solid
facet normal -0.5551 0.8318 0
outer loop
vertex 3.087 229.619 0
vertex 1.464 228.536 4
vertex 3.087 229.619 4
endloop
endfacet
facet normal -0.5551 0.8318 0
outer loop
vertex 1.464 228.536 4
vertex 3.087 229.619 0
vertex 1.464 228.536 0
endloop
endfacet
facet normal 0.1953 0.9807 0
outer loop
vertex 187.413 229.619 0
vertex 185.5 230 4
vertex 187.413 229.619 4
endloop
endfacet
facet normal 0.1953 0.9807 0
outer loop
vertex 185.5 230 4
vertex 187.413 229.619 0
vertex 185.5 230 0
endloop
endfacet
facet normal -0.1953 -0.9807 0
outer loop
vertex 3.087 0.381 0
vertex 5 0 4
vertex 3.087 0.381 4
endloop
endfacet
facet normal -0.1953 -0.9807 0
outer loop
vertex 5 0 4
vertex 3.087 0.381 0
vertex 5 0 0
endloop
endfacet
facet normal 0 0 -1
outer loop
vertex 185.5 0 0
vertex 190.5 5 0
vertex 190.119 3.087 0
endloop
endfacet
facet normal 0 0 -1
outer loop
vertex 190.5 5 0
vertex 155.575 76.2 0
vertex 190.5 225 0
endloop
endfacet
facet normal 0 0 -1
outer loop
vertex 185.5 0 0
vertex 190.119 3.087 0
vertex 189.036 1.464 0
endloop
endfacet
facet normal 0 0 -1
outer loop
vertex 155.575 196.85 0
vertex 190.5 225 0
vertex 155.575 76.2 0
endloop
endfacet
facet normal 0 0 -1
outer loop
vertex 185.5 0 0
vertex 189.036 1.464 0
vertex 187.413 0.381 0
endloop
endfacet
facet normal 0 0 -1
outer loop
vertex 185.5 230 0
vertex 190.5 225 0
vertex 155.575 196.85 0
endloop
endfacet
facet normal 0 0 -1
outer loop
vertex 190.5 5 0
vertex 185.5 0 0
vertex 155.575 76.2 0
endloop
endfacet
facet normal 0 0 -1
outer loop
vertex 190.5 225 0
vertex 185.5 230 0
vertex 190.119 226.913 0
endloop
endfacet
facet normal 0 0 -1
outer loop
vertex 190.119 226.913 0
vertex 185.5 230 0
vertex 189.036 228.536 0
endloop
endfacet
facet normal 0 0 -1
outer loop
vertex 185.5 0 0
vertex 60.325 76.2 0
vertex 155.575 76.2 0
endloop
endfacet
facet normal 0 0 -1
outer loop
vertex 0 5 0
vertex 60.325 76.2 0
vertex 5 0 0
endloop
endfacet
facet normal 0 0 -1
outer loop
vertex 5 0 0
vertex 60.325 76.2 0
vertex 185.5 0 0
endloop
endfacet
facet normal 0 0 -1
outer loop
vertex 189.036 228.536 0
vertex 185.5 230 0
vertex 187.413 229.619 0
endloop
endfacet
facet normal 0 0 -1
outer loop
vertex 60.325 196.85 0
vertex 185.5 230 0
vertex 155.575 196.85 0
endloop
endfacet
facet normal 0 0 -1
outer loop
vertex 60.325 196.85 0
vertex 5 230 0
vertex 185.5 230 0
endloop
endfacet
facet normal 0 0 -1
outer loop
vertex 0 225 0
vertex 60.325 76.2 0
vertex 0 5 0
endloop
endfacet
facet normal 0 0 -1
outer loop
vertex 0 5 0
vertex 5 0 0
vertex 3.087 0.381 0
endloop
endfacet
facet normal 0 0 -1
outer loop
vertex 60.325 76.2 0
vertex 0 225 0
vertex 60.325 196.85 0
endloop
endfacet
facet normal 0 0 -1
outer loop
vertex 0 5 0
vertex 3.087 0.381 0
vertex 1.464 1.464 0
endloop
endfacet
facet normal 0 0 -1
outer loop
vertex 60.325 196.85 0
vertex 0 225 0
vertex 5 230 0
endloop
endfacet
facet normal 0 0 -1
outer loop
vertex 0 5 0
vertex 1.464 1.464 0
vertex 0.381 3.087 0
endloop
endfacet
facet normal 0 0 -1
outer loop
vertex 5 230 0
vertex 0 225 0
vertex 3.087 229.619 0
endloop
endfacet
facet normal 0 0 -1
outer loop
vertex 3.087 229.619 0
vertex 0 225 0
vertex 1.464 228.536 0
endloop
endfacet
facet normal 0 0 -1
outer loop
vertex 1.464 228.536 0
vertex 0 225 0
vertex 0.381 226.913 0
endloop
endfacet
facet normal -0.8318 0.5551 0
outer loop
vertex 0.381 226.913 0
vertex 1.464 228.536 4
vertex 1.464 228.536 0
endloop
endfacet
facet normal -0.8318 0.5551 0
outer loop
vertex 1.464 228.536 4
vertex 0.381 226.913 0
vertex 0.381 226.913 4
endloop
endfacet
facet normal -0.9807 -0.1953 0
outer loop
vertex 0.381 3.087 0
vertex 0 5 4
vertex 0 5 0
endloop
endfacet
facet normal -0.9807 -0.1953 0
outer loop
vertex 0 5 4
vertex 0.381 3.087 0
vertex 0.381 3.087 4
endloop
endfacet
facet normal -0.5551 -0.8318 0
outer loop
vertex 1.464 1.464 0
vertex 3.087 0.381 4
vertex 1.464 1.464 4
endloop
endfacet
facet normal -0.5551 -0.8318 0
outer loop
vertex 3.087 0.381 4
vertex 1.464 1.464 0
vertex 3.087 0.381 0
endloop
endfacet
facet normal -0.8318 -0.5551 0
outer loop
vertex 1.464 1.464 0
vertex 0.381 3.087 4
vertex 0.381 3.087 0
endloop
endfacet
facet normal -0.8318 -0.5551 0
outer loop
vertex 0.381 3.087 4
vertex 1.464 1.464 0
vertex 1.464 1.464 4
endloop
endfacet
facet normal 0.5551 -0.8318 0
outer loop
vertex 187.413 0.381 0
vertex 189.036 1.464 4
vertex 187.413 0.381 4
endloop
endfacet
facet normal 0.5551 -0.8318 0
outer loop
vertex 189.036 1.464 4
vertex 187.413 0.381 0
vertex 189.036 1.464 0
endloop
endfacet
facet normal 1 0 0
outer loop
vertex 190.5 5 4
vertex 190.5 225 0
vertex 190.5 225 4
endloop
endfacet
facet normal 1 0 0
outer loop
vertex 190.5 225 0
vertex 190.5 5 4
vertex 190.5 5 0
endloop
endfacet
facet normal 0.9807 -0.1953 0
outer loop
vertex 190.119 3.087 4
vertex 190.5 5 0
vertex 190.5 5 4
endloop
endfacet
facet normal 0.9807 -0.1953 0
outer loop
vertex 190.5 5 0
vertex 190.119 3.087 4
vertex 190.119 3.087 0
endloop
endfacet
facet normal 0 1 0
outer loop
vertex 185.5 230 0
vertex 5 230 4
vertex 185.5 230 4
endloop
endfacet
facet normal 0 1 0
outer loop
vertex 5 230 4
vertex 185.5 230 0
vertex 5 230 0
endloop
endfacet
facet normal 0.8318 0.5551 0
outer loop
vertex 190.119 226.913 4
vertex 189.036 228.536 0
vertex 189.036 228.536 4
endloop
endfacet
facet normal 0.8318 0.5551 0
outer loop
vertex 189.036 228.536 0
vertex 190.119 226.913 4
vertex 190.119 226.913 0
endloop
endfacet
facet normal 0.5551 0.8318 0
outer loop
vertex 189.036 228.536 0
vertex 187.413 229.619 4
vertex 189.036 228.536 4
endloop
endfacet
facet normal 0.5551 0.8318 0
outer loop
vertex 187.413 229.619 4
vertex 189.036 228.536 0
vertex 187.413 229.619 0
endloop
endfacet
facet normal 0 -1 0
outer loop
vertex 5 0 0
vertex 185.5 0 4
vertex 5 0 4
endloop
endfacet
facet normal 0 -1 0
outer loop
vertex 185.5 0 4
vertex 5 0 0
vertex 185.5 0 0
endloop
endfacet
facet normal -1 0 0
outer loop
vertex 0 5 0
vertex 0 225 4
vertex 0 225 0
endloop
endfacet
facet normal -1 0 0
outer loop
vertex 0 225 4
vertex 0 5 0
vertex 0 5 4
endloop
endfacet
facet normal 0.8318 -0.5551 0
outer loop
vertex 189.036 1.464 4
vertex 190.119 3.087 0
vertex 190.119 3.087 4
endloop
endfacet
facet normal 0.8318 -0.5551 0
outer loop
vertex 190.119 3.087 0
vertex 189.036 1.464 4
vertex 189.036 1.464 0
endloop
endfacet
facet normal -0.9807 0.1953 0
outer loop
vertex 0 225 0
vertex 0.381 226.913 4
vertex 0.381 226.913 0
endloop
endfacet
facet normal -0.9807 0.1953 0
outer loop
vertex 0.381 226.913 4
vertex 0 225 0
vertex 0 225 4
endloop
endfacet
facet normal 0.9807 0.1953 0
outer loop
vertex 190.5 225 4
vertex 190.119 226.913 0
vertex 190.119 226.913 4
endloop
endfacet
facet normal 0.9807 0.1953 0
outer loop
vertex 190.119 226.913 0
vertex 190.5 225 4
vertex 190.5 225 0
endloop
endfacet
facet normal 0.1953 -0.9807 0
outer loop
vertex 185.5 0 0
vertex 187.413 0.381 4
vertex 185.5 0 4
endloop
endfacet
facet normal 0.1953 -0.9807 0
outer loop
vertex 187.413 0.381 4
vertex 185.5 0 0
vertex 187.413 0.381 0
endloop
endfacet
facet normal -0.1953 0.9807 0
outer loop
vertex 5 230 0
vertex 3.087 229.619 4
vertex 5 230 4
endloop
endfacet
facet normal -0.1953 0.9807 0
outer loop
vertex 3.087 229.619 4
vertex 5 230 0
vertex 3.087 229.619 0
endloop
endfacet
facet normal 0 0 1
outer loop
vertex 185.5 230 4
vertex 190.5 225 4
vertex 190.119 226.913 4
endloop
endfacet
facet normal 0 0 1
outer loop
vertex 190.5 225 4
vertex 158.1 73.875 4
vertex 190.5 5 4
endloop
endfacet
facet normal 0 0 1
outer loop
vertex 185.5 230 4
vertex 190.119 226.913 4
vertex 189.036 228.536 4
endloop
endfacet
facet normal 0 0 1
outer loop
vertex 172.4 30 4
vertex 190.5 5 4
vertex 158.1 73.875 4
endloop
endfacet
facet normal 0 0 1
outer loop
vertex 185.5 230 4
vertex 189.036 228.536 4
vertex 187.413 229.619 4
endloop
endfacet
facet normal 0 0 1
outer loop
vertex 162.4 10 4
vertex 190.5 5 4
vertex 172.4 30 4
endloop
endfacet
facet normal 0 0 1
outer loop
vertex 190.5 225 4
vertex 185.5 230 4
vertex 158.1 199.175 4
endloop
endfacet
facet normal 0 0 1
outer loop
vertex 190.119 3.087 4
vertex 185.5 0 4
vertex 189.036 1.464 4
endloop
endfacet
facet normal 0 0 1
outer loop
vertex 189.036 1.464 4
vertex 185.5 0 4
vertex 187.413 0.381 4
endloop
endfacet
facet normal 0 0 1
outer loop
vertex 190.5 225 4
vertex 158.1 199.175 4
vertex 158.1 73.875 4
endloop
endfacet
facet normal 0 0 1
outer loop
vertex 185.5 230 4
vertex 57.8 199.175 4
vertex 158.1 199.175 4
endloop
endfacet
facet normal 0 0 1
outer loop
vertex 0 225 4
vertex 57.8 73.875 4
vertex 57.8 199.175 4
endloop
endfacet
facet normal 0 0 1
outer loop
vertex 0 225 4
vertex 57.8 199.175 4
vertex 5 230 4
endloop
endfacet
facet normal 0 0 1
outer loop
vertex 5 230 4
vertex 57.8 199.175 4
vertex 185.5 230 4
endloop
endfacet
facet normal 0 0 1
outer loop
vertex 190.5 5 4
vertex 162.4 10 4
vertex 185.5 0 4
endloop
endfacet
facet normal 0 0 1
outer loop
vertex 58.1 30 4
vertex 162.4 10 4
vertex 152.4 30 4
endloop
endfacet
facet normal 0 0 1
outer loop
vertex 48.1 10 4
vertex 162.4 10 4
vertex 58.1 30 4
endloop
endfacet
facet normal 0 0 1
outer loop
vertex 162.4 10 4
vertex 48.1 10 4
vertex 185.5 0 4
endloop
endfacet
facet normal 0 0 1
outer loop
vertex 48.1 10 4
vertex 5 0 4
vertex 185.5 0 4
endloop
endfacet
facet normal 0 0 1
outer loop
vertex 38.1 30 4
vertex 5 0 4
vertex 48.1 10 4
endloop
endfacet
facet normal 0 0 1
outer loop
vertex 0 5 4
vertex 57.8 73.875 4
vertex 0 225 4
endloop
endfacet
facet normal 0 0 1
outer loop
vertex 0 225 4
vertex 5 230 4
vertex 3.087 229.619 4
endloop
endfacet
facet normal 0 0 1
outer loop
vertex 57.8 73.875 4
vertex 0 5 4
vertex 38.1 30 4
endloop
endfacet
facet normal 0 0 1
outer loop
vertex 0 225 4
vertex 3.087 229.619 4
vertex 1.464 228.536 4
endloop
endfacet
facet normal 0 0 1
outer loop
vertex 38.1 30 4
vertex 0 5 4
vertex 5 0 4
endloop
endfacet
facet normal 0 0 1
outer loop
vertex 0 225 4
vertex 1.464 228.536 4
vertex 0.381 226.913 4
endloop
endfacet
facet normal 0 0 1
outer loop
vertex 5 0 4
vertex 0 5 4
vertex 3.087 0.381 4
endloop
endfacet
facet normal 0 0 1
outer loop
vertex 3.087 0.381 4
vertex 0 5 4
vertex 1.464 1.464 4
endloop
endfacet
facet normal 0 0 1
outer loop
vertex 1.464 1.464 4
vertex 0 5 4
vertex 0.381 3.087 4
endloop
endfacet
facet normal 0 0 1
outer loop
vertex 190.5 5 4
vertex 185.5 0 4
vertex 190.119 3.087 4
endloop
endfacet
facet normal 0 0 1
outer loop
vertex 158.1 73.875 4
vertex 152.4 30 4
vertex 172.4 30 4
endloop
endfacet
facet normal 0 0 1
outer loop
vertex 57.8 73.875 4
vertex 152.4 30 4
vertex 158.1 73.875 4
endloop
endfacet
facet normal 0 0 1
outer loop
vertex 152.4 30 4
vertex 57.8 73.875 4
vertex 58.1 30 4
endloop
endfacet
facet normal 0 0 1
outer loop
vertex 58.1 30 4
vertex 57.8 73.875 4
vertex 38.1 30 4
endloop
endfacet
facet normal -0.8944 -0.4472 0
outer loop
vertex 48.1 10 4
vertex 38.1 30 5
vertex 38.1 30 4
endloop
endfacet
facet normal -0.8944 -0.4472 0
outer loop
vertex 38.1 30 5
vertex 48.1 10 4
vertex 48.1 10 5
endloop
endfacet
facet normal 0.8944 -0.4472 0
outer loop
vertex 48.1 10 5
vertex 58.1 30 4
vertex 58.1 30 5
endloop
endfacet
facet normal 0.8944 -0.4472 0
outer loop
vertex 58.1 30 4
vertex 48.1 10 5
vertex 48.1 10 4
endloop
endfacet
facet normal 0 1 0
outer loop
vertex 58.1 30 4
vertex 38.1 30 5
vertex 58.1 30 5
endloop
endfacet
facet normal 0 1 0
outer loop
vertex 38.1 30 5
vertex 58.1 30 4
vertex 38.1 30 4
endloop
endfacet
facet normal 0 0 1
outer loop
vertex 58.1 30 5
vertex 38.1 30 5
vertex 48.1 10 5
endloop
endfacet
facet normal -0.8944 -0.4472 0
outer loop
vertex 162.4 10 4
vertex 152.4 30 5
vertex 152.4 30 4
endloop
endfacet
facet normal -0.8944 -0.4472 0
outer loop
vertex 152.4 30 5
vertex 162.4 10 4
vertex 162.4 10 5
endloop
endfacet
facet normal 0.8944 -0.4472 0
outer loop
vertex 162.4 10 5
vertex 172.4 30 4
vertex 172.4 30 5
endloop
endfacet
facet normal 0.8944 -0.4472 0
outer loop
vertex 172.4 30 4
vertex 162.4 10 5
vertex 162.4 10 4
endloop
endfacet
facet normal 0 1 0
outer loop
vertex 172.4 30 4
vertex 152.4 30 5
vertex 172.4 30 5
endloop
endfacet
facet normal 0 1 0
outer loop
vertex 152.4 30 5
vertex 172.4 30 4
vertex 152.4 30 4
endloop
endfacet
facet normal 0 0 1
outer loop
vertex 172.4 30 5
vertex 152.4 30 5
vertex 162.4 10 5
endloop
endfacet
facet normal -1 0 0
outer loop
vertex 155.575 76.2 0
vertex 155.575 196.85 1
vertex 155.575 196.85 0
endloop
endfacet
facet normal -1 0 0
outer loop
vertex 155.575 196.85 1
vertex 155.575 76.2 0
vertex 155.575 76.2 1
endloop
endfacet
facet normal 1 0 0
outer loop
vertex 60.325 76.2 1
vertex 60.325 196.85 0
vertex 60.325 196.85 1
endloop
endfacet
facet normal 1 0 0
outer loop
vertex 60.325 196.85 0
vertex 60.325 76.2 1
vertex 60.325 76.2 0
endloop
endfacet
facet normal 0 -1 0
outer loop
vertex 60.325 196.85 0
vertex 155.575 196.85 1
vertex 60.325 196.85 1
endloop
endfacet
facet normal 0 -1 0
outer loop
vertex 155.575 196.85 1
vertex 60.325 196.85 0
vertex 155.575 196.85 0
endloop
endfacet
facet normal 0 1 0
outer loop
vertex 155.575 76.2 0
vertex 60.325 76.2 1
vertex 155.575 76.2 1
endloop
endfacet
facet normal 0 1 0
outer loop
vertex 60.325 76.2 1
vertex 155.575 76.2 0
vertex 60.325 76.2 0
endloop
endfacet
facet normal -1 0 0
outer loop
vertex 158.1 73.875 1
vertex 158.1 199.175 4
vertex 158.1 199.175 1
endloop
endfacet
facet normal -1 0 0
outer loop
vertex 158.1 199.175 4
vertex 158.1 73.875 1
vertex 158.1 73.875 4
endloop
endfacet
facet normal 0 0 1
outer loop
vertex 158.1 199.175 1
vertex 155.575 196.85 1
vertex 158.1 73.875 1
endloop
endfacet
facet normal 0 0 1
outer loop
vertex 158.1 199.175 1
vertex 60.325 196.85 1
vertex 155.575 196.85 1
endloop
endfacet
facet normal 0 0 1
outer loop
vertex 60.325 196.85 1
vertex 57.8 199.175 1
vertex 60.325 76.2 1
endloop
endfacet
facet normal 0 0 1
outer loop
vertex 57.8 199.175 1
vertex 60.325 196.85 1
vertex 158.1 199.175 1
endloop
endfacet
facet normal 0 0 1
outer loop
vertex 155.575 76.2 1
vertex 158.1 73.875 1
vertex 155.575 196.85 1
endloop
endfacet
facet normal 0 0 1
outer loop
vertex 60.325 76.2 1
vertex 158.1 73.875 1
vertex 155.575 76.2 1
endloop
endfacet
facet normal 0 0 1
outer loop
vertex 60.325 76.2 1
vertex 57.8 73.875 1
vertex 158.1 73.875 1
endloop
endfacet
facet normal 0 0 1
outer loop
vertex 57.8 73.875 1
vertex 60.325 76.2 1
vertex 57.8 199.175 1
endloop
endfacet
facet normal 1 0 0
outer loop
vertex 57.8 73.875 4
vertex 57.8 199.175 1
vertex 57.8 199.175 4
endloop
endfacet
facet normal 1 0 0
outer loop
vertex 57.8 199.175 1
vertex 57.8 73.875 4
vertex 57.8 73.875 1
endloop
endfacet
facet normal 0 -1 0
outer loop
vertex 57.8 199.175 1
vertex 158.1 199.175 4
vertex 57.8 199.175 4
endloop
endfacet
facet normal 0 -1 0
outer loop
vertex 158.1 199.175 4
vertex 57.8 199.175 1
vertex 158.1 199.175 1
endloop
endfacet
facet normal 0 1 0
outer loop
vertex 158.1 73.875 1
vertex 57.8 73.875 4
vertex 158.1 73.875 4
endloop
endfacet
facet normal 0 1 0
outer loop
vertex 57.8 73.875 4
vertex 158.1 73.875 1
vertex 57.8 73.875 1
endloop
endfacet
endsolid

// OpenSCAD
include <BOSL/transforms.scad>

function inchToMillimeter(x) = x*25.4;

// EDIT THIS ACCORDING TO YOUR PRINTER
// slop for the film to fit in the hole
slop = 0.15;
// holder can be longer if you have a larger print bed
printBedDepth=230;

// EDIT THIS TO ADJUST HOLDER THICKNESS
height = 4;

// EDIT THIS TO ADJUST ELEVATION OF FILM ABOVE GLASS
filmHeight = 1;

// printer parameters

// page size
width = inchToMillimeter(7.5);
depth = min(inchToMillimeter(11),printBedDepth);

// location of film hole
// left offset 
holeOffsetX = inchToMillimeter(2.375);
// bottom offset
// holeOffsetY = inchToMillimeter(3.875); - original size 
holeOffsetY = inchToMillimeter(3.0);
// film hole size, as per the template 
holeWidth = inchToMillimeter(3.75);
holeDepth = inchToMillimeter(4.75);

// now we want to make an inset to hold the film well
// in millimeters, the hole has size 95.25 x 120.65
// actual film size is:
filmWidth = 100 + 2*slop;
filmDepth = 125 + 2*slop;

// so we have extra 4.75mm for width and 4.35mm for depth 
// that we can use to hold the film above the glass
insetOffsetX = holeOffsetX-(filmWidth - holeWidth)/2;
insetOffsetY = holeOffsetY-(filmDepth - holeDepth)/2;

module arrow() {
    linear_extrude(height+1)
        polygon([[10,0],[0,20],[20,20]]);
    }
module page() {
    // main body
    shape = [
        [0,0],[width,0],[width,depth],[0,depth]
    ];
    linear_extrude(height) 
        round2d(5)
        polygon(shape);
    // indicator arrows
    translate([width/5,10,0]) arrow();
    translate([width*4/5,10,0]) arrow();
    } 
module hole() {
    translate([holeOffsetX, holeOffsetY,-1]) 
        cube([holeWidth,holeDepth,height+1]);
    }
    
module inset() {
    translate([insetOffsetX,insetOffsetY,filmHeight])
    cube([filmWidth,filmDepth,height]);
    }

difference() {
    page(); 
    hole(); 
    inset();
  }
    
